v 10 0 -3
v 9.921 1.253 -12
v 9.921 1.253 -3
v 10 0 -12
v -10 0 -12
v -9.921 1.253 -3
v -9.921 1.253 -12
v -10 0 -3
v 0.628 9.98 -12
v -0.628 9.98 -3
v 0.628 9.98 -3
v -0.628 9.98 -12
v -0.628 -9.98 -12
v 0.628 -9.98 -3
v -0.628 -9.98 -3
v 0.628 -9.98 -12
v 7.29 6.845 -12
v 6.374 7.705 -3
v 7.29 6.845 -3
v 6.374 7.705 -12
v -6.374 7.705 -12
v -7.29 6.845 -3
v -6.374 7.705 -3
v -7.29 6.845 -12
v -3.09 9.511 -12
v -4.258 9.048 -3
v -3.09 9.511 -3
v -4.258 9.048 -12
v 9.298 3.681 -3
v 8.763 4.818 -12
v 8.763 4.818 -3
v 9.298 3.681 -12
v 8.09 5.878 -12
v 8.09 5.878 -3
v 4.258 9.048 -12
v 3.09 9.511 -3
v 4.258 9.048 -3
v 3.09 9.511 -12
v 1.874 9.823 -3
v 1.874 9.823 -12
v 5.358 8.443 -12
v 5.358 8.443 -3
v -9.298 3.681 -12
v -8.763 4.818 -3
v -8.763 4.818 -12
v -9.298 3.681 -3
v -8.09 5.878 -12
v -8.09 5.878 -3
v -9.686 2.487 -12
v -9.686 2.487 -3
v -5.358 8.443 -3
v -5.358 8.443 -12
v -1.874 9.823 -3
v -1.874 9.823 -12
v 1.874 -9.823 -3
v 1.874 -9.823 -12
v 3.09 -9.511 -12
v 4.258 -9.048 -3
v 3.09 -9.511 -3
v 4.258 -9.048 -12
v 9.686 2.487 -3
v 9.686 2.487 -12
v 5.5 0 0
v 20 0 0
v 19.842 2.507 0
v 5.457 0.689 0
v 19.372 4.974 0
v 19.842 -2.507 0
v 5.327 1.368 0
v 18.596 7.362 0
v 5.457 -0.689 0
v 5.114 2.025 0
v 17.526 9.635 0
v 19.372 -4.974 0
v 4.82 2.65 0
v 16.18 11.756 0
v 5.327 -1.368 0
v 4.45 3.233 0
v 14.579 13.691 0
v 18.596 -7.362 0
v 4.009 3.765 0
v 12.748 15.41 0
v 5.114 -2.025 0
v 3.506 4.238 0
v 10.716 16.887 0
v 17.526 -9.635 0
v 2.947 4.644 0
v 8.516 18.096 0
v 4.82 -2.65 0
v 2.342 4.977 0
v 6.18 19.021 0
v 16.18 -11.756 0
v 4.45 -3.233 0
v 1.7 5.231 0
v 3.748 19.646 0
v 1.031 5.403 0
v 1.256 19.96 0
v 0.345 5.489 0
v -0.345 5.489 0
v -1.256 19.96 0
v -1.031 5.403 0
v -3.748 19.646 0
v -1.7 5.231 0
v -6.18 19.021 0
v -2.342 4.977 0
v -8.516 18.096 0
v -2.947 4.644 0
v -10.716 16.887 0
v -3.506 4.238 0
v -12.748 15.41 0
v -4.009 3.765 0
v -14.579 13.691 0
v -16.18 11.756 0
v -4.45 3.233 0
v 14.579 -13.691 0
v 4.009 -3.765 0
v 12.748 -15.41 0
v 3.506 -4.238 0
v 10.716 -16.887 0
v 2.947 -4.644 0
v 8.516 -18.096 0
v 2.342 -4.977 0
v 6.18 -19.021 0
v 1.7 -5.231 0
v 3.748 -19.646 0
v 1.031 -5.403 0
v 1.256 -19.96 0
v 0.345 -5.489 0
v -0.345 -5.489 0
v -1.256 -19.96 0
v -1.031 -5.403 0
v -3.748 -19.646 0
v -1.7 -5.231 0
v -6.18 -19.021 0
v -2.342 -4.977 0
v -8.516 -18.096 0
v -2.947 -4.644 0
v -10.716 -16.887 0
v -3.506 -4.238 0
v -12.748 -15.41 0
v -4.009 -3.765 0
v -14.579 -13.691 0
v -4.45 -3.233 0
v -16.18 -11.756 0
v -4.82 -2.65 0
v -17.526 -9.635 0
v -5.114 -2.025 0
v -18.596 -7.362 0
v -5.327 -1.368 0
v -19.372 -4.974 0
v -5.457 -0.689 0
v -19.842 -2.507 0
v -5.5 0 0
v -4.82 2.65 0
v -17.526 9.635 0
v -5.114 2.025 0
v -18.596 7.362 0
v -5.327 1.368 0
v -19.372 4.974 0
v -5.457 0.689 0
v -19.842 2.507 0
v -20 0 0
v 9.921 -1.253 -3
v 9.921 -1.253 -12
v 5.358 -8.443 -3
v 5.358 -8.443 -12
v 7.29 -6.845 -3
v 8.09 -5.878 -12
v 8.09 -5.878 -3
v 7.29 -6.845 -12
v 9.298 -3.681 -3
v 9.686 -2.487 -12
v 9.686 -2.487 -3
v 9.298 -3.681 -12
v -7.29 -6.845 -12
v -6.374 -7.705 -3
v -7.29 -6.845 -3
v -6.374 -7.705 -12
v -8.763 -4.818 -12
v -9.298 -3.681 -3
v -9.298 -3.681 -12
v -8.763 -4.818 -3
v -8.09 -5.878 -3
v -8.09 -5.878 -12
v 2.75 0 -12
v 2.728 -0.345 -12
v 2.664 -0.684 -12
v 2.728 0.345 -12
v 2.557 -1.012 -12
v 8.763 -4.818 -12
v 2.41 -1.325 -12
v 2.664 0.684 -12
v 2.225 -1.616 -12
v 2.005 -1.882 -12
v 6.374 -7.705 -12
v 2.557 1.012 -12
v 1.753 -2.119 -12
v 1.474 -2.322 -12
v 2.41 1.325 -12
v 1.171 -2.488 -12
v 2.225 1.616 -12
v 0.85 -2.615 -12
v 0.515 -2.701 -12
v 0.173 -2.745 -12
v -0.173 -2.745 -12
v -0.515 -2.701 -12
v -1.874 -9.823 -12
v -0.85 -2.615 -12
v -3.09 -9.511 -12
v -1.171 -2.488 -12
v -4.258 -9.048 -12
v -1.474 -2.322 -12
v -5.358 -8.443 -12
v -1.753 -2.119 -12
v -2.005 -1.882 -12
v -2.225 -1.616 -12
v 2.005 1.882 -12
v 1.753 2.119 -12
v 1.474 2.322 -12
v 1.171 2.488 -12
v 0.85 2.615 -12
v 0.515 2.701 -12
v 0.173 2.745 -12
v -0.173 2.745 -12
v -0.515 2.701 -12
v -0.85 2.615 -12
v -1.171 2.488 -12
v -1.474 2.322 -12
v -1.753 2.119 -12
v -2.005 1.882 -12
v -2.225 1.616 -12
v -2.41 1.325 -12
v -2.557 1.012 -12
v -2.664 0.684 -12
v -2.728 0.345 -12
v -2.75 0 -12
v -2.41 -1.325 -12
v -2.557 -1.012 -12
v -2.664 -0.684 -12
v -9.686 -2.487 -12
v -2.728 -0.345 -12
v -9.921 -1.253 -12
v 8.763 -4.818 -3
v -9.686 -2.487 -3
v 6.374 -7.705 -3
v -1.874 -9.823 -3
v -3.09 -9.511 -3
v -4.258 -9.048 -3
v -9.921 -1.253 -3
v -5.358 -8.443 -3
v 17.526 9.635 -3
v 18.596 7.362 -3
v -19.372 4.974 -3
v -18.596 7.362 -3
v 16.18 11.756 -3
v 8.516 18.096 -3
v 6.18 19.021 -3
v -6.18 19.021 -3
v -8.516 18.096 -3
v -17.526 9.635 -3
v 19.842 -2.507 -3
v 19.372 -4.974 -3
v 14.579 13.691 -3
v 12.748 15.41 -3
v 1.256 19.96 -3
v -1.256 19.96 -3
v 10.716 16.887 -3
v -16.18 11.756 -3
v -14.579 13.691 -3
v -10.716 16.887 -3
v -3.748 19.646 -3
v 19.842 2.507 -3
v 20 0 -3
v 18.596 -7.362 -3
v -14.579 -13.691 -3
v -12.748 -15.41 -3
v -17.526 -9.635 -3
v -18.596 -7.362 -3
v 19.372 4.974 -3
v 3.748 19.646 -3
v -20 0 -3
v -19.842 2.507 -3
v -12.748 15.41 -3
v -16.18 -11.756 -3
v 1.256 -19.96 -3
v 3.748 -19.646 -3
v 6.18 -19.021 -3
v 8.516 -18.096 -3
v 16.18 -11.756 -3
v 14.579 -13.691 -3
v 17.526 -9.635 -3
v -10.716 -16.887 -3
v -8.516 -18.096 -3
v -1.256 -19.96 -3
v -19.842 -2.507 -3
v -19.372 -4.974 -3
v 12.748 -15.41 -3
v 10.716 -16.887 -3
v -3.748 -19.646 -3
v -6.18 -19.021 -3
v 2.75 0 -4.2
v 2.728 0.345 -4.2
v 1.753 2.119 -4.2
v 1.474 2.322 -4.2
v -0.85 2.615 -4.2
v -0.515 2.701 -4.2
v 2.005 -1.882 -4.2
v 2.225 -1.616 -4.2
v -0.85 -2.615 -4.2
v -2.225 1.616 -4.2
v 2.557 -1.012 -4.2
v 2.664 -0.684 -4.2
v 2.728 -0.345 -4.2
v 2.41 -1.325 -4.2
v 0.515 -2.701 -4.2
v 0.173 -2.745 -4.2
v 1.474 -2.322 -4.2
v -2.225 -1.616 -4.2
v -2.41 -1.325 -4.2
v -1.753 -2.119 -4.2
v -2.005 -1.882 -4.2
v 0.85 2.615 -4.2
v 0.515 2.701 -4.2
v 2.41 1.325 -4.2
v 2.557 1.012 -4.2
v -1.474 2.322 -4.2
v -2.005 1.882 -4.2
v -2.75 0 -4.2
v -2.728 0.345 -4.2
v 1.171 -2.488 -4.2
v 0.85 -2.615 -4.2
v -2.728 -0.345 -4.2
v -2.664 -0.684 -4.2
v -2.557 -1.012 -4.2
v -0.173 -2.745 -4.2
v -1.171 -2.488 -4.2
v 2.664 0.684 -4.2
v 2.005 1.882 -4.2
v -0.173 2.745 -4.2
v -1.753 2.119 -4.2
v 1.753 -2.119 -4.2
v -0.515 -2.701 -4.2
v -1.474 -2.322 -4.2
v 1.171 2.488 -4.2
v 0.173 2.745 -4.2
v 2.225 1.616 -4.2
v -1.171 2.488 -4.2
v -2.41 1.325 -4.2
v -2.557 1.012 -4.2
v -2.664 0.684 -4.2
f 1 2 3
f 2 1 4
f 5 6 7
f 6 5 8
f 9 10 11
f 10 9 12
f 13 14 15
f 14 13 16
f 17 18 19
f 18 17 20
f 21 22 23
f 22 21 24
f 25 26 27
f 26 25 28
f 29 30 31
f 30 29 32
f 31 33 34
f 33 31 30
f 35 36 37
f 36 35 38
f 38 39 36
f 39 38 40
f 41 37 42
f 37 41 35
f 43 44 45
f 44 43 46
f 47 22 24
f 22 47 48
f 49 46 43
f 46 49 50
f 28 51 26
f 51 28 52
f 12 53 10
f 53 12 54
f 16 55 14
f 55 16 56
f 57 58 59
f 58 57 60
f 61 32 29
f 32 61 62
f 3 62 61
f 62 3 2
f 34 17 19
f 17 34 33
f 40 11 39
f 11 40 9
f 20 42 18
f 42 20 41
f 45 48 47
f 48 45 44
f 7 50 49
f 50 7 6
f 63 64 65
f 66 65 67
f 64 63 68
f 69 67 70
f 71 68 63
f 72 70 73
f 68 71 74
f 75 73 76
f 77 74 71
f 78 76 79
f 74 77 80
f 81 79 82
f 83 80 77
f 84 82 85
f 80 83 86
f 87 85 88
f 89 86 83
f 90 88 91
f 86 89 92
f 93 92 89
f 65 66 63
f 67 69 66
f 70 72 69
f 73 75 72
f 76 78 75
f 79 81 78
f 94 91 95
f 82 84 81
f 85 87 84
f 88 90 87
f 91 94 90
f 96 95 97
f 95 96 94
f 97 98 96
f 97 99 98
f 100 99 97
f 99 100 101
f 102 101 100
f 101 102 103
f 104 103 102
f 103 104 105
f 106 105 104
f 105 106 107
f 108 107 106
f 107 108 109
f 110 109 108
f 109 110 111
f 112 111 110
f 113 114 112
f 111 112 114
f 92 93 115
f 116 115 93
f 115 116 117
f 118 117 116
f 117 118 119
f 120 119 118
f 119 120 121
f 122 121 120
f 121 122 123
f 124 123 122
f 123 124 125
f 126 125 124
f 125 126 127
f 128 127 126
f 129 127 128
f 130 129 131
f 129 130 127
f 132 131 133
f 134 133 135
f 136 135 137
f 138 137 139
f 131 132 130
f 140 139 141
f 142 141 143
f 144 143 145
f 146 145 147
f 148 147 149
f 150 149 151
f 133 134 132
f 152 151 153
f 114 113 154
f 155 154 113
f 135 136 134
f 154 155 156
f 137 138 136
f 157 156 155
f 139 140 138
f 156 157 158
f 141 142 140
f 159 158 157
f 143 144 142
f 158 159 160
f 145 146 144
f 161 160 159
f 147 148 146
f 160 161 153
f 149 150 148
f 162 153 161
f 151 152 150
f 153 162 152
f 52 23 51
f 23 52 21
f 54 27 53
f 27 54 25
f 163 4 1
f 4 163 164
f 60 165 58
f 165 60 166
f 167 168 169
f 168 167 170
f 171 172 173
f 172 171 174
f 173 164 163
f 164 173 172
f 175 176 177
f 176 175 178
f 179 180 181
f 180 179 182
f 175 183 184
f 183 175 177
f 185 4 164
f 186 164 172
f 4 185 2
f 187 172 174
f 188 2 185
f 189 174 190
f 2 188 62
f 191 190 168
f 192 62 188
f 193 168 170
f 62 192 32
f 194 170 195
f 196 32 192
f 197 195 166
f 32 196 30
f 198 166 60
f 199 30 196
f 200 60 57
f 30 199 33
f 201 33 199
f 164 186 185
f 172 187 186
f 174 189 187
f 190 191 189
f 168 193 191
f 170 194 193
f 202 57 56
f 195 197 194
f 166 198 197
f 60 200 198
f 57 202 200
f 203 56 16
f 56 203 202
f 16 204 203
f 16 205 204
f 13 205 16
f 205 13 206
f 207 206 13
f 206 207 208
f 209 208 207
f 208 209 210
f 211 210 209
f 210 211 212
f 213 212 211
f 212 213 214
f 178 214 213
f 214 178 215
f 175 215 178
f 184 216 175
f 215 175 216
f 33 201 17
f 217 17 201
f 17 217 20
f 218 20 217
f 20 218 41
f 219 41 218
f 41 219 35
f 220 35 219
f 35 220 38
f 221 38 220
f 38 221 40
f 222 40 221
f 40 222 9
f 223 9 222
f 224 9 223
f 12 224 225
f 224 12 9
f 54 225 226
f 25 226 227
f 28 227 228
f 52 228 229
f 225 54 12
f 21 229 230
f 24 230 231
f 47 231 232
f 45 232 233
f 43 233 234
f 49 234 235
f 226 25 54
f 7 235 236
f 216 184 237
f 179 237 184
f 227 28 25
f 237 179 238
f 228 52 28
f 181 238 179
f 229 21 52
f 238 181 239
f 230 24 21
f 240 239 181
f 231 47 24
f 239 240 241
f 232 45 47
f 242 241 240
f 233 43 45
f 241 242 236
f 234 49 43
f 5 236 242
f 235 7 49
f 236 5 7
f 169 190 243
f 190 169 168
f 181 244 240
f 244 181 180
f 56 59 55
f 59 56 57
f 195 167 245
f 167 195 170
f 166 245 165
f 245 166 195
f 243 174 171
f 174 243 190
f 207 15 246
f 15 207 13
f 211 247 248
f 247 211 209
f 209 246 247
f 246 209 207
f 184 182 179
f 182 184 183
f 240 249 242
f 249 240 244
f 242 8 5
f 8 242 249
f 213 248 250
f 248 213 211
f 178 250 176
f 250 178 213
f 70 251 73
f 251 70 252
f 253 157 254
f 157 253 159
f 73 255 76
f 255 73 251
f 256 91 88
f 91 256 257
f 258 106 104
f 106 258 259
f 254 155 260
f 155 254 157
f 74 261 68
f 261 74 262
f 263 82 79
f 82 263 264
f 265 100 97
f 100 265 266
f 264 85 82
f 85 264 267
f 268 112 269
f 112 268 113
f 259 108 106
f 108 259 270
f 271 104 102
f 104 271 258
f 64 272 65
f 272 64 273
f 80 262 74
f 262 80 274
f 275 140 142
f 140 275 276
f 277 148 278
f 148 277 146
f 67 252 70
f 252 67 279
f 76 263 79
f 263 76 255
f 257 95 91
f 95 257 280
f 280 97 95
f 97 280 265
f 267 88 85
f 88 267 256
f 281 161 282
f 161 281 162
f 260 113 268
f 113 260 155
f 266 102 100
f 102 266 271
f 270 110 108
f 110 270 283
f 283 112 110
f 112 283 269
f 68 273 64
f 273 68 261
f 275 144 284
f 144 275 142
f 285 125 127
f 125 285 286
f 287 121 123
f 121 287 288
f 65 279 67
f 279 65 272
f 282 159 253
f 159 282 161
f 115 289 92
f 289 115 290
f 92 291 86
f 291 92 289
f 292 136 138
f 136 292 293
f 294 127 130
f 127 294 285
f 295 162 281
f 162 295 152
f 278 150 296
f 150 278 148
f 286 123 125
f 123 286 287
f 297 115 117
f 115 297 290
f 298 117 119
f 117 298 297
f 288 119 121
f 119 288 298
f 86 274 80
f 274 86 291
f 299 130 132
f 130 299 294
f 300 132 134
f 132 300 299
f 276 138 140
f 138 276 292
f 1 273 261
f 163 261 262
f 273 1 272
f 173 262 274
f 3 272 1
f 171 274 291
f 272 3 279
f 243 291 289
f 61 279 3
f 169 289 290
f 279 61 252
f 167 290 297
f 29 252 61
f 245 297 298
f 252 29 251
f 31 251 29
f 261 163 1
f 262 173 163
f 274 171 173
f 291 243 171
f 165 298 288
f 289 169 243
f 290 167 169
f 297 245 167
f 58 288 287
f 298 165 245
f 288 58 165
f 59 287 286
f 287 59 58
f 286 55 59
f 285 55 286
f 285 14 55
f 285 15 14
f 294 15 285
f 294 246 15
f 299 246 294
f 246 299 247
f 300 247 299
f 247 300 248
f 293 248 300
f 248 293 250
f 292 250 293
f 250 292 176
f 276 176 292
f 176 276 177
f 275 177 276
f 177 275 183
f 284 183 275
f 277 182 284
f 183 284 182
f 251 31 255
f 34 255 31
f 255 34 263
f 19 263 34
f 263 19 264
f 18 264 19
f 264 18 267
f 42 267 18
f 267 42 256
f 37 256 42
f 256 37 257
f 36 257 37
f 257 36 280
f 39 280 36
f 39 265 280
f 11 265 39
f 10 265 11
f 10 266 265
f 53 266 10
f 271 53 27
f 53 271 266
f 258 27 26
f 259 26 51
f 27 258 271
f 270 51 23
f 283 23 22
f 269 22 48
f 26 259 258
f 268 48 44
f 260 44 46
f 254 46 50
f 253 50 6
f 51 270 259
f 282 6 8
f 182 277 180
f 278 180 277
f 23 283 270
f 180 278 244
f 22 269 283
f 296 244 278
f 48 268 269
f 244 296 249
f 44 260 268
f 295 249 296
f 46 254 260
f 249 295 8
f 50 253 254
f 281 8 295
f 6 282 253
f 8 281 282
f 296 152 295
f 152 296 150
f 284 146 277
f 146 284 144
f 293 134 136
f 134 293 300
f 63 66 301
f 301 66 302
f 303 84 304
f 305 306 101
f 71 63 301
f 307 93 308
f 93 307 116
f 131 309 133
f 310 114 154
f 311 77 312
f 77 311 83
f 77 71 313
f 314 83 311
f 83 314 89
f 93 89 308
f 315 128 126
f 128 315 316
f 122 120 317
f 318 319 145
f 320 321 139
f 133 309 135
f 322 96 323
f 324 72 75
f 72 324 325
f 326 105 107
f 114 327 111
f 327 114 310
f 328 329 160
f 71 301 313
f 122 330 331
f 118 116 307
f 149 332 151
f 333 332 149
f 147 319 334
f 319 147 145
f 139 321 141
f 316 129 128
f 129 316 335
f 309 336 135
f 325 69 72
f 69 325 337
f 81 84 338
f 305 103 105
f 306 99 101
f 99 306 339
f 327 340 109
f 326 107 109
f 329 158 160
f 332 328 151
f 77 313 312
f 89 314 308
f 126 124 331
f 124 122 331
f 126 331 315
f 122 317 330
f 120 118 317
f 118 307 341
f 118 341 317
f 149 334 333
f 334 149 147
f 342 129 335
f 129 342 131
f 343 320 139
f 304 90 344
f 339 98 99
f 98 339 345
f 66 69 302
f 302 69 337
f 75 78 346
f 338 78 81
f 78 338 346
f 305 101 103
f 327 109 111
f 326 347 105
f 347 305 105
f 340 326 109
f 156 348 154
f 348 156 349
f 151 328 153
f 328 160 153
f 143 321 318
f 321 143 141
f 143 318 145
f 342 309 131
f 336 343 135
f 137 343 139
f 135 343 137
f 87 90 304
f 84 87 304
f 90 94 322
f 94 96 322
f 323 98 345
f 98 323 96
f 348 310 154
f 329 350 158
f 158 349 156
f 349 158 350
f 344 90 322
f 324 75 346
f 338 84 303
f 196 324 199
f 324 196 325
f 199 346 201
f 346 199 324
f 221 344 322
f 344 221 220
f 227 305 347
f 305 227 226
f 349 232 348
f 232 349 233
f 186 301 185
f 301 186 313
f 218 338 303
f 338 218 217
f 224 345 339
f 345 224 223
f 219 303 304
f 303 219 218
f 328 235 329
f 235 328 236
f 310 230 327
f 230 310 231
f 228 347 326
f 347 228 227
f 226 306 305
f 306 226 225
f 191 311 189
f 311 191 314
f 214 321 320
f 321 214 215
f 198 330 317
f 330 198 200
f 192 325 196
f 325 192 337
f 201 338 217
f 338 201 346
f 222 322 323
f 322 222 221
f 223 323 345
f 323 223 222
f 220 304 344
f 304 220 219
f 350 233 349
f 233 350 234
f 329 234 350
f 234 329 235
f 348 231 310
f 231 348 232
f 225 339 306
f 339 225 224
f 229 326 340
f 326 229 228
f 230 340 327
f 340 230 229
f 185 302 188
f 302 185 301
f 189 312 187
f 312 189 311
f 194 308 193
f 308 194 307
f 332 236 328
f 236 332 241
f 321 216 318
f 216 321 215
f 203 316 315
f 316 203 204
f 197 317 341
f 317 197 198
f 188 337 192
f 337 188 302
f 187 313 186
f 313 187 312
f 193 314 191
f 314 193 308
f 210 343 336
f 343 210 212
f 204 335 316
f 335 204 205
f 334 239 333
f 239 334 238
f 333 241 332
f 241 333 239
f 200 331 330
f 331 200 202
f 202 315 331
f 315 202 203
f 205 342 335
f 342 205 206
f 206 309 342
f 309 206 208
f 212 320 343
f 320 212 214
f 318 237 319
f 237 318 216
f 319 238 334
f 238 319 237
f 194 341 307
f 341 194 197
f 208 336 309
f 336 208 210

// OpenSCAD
$fn = 50;


difference() {
	union() {
		translate(v = [0, 0, -12.0000000000]) {
			cylinder(h = 12, r = 10.0000000000);
		}
		translate(v = [0, 0, -3.0000000000]) {
			cylinder(h = 3, r = 20.0000000000);
		}
	}
	union() {
		translate(v = [0, 0, 0]) {
			rotate(a = [0, 0, 0]) {
				difference() {
					union() {
						#translate(v = [0, 0, -12.0000000000]) {
							cylinder(h = 12, r = 2.2500000000);
						}
						#translate(v = [0, 0, -4.2000000000]) {
							cylinder(h = 4.2000000000, r1 = 2.7500000000, r2 = 5.5000000000);
						}
						#translate(v = [0, 0, -12.0000000000]) {
							cylinder(h = 12, r = 2.7500000000);
						}
						#translate(v = [0, 0, -12.0000000000]) {
							cylinder(h = 12, r = 2.2500000000);
						}
					}
					union();
				}
			}
		}
	}
}
